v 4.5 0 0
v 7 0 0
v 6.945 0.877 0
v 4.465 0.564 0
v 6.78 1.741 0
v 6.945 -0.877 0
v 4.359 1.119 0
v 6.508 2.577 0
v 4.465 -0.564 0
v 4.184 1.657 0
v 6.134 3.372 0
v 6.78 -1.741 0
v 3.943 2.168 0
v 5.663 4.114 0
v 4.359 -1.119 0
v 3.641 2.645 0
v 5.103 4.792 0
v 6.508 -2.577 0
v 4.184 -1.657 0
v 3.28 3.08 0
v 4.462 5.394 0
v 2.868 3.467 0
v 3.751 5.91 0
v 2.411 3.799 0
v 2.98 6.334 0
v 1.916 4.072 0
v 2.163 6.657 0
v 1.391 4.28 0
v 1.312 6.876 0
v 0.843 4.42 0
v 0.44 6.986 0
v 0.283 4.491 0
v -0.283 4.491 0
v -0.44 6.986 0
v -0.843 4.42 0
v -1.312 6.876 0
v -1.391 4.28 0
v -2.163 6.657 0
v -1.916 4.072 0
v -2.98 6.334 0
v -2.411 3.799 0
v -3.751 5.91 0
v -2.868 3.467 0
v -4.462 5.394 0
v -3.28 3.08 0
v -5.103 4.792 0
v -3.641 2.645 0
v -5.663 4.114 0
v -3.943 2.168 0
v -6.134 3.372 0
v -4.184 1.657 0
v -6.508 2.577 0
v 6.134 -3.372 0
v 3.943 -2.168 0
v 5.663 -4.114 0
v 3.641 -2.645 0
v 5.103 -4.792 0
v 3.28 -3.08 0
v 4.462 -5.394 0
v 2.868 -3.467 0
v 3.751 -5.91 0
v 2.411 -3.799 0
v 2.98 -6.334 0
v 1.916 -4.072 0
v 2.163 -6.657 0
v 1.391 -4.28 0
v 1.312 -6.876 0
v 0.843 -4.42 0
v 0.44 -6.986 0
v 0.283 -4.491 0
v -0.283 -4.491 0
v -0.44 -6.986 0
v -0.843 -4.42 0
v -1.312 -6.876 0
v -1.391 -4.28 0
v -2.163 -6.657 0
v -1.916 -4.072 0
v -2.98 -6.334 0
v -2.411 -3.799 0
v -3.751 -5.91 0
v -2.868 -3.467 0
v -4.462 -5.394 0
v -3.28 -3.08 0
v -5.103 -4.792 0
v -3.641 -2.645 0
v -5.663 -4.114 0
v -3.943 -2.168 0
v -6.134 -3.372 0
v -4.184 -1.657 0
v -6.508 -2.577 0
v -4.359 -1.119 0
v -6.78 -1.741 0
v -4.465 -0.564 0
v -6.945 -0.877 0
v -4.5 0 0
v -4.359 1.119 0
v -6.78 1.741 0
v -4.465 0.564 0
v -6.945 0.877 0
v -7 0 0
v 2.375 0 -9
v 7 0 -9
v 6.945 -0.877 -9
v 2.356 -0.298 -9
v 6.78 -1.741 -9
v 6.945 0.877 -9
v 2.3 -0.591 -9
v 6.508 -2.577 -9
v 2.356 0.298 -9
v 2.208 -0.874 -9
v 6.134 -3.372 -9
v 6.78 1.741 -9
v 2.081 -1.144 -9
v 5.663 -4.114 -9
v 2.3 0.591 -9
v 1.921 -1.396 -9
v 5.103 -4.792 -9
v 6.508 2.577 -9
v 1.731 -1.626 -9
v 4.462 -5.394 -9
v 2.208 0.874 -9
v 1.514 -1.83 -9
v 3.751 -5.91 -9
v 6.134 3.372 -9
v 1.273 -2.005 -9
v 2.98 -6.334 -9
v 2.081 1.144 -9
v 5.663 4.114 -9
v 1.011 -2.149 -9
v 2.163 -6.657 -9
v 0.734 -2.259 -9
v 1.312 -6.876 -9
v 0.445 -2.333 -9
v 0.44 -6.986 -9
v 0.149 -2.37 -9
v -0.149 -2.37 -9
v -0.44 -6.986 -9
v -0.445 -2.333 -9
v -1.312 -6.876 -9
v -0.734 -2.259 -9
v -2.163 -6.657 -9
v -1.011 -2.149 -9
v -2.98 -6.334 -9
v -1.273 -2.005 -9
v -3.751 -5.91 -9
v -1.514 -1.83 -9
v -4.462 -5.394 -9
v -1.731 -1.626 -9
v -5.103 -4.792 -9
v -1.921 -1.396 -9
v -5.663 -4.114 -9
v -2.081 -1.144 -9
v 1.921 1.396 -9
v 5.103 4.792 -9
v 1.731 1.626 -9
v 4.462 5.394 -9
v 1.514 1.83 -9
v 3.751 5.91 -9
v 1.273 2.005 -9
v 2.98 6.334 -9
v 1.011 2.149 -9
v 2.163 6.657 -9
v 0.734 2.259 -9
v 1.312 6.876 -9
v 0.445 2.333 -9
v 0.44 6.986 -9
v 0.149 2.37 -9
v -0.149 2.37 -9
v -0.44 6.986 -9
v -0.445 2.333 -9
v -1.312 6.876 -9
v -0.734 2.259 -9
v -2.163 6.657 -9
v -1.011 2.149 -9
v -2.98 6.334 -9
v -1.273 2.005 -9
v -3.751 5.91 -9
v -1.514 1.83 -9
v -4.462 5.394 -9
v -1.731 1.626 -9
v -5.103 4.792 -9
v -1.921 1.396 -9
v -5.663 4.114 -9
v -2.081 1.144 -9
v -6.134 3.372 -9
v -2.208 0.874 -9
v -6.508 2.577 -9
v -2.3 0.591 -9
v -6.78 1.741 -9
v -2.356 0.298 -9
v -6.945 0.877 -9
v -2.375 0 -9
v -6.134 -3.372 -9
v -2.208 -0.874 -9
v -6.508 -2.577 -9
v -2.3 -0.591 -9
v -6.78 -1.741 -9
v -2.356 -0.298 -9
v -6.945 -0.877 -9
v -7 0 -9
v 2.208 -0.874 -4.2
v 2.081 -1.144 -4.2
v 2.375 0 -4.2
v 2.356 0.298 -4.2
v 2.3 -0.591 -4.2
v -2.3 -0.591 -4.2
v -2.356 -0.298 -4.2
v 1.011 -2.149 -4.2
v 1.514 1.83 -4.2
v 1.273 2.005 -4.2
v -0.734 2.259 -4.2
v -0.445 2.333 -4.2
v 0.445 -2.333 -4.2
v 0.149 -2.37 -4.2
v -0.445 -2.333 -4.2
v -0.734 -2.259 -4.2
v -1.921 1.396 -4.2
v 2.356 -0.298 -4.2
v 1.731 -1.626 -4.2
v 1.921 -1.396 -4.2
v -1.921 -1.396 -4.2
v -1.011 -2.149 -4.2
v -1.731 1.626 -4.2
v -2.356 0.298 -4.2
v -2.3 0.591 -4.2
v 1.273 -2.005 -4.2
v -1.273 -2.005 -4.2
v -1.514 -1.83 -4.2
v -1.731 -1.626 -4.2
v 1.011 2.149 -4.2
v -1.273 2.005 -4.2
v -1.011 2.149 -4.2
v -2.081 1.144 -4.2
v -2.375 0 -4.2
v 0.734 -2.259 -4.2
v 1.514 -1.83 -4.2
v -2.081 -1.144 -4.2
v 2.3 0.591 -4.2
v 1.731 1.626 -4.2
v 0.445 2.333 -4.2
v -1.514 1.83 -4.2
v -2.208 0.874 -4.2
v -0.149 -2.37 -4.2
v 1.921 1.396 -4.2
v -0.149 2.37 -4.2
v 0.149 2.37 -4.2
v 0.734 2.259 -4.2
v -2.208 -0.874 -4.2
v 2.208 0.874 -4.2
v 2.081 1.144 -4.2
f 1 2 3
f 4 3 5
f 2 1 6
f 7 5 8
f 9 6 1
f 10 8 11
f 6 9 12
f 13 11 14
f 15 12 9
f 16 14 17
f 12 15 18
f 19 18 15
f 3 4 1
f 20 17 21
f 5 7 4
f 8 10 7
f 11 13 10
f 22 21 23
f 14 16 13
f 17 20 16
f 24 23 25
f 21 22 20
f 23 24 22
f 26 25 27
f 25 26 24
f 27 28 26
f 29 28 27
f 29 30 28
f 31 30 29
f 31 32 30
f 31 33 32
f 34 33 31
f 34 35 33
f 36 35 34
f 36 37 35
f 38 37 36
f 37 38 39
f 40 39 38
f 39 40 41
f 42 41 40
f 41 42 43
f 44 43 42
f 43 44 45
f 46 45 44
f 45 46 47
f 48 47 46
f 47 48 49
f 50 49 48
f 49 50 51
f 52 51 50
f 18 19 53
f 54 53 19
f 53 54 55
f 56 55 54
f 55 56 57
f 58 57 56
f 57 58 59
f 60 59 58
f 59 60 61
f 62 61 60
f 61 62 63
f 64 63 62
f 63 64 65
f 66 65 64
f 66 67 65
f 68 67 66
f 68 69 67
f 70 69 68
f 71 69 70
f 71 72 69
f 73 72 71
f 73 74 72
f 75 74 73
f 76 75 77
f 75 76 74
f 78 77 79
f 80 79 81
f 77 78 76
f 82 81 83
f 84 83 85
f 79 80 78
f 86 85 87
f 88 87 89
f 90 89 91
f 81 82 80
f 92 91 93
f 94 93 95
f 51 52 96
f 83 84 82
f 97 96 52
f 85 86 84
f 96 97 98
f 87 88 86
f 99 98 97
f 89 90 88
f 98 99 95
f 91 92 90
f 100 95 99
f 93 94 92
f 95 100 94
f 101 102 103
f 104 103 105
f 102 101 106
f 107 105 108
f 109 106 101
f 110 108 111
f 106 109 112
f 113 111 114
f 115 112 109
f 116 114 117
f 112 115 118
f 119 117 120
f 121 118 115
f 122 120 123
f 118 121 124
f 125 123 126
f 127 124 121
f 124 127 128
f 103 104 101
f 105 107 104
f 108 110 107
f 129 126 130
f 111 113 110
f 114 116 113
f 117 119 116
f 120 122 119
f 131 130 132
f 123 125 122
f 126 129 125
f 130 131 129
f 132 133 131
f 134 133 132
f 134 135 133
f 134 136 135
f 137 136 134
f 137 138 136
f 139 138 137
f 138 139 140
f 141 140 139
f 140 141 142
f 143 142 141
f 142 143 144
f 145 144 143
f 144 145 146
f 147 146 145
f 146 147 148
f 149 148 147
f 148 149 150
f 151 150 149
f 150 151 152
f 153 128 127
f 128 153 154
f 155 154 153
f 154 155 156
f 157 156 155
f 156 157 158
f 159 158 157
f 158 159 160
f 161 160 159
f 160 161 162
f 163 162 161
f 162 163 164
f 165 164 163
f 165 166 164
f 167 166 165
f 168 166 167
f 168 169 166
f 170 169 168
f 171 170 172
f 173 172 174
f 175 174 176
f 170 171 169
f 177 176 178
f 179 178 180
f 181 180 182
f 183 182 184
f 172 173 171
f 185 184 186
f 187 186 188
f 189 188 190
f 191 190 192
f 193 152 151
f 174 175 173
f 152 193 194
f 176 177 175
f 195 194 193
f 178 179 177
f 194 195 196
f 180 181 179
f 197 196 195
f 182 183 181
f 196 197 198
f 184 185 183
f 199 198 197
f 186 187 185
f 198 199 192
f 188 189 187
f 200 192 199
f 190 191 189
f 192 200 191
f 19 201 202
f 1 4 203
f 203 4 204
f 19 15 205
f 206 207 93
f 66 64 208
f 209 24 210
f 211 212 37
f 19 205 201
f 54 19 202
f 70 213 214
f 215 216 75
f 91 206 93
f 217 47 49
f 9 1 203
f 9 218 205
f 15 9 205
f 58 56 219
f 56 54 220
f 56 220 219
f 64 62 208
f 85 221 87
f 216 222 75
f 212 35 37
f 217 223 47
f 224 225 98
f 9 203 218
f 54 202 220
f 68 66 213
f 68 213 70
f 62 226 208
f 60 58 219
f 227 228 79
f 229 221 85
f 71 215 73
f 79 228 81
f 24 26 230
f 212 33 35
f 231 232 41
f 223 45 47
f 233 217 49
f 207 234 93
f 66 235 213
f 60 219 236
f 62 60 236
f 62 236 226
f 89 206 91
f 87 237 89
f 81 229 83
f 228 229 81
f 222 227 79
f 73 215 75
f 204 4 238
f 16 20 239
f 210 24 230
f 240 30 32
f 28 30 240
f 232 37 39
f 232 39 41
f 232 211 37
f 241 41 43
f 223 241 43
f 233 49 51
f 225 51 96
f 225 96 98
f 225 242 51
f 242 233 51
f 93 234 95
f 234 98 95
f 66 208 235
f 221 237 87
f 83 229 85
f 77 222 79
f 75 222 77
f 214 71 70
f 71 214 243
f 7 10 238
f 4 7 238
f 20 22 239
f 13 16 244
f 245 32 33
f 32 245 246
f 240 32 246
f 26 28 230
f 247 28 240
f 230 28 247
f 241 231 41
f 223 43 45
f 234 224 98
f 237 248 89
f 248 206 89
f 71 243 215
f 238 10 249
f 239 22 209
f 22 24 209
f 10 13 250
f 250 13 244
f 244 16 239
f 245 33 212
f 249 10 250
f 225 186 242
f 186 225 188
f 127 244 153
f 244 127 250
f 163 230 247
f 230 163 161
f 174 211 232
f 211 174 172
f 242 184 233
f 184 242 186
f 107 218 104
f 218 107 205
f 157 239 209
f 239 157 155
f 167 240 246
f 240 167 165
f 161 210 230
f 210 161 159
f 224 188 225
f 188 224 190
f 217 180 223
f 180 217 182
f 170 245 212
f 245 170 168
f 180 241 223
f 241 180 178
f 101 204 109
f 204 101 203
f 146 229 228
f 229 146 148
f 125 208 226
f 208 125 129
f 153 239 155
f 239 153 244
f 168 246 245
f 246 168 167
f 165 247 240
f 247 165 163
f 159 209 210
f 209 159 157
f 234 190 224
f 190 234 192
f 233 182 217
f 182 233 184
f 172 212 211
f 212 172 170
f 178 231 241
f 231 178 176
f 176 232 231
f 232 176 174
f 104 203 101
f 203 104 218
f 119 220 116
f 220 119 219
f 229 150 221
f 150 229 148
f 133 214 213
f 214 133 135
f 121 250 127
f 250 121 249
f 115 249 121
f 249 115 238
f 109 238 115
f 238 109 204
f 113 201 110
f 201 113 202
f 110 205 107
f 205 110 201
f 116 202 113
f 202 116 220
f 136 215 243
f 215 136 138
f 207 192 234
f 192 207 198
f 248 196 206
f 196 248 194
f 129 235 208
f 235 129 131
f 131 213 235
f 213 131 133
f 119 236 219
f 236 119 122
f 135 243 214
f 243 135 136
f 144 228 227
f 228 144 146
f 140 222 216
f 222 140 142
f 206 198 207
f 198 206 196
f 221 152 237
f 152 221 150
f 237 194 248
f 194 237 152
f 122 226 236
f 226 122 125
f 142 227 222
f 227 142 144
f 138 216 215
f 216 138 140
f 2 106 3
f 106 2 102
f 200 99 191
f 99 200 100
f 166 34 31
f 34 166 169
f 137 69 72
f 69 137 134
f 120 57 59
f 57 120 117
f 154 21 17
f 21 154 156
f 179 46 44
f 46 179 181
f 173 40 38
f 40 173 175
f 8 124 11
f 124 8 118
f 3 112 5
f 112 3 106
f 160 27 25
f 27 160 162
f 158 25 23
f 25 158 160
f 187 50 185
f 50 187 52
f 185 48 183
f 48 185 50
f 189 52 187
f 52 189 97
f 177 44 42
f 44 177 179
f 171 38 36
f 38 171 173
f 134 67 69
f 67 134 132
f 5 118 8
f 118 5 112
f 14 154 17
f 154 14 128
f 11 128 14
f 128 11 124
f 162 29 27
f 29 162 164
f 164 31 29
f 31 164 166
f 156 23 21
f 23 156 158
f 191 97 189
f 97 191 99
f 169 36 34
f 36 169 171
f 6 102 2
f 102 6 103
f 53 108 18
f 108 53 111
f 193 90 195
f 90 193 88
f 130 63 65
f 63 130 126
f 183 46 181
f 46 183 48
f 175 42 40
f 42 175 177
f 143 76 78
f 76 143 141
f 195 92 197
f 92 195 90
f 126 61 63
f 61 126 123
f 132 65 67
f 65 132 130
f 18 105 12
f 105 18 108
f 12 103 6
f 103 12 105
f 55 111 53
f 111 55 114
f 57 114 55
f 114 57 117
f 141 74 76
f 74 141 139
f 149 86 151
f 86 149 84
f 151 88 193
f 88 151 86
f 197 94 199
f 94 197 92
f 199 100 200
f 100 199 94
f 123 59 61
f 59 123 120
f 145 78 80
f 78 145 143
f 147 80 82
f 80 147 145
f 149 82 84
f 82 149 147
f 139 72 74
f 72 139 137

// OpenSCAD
$fn = 50;


difference() {
	union() {
		translate(v = [0, 0, -9.0000000000]) {
			cylinder(h = 9, r = 7.0000000000);
		}
	}
	union() {
		translate(v = [0, 0, 0]) {
			rotate(a = [0, 0, 0]) {
				difference() {
					union() {
						#translate(v = [0, 0, -9.0000000000]) {
							cylinder(h = 9, r = 2.2500000000);
						}
						#translate(v = [0, 0, -4.2000000000]) {
							cylinder(h = 4.2000000000, r = 7.0000000000, r1 = 2.3750000000, r2 = 4.5000000000);
						}
						#translate(v = [0, 0, -9.0000000000]) {
							cylinder(h = 9, r = 2.3750000000);
						}
						#translate(v = [0, 0, -9.0000000000]) {
							cylinder(h = 9, r = 2.2500000000);
						}
					}
					union();
				}
			}
		}
	}
}
